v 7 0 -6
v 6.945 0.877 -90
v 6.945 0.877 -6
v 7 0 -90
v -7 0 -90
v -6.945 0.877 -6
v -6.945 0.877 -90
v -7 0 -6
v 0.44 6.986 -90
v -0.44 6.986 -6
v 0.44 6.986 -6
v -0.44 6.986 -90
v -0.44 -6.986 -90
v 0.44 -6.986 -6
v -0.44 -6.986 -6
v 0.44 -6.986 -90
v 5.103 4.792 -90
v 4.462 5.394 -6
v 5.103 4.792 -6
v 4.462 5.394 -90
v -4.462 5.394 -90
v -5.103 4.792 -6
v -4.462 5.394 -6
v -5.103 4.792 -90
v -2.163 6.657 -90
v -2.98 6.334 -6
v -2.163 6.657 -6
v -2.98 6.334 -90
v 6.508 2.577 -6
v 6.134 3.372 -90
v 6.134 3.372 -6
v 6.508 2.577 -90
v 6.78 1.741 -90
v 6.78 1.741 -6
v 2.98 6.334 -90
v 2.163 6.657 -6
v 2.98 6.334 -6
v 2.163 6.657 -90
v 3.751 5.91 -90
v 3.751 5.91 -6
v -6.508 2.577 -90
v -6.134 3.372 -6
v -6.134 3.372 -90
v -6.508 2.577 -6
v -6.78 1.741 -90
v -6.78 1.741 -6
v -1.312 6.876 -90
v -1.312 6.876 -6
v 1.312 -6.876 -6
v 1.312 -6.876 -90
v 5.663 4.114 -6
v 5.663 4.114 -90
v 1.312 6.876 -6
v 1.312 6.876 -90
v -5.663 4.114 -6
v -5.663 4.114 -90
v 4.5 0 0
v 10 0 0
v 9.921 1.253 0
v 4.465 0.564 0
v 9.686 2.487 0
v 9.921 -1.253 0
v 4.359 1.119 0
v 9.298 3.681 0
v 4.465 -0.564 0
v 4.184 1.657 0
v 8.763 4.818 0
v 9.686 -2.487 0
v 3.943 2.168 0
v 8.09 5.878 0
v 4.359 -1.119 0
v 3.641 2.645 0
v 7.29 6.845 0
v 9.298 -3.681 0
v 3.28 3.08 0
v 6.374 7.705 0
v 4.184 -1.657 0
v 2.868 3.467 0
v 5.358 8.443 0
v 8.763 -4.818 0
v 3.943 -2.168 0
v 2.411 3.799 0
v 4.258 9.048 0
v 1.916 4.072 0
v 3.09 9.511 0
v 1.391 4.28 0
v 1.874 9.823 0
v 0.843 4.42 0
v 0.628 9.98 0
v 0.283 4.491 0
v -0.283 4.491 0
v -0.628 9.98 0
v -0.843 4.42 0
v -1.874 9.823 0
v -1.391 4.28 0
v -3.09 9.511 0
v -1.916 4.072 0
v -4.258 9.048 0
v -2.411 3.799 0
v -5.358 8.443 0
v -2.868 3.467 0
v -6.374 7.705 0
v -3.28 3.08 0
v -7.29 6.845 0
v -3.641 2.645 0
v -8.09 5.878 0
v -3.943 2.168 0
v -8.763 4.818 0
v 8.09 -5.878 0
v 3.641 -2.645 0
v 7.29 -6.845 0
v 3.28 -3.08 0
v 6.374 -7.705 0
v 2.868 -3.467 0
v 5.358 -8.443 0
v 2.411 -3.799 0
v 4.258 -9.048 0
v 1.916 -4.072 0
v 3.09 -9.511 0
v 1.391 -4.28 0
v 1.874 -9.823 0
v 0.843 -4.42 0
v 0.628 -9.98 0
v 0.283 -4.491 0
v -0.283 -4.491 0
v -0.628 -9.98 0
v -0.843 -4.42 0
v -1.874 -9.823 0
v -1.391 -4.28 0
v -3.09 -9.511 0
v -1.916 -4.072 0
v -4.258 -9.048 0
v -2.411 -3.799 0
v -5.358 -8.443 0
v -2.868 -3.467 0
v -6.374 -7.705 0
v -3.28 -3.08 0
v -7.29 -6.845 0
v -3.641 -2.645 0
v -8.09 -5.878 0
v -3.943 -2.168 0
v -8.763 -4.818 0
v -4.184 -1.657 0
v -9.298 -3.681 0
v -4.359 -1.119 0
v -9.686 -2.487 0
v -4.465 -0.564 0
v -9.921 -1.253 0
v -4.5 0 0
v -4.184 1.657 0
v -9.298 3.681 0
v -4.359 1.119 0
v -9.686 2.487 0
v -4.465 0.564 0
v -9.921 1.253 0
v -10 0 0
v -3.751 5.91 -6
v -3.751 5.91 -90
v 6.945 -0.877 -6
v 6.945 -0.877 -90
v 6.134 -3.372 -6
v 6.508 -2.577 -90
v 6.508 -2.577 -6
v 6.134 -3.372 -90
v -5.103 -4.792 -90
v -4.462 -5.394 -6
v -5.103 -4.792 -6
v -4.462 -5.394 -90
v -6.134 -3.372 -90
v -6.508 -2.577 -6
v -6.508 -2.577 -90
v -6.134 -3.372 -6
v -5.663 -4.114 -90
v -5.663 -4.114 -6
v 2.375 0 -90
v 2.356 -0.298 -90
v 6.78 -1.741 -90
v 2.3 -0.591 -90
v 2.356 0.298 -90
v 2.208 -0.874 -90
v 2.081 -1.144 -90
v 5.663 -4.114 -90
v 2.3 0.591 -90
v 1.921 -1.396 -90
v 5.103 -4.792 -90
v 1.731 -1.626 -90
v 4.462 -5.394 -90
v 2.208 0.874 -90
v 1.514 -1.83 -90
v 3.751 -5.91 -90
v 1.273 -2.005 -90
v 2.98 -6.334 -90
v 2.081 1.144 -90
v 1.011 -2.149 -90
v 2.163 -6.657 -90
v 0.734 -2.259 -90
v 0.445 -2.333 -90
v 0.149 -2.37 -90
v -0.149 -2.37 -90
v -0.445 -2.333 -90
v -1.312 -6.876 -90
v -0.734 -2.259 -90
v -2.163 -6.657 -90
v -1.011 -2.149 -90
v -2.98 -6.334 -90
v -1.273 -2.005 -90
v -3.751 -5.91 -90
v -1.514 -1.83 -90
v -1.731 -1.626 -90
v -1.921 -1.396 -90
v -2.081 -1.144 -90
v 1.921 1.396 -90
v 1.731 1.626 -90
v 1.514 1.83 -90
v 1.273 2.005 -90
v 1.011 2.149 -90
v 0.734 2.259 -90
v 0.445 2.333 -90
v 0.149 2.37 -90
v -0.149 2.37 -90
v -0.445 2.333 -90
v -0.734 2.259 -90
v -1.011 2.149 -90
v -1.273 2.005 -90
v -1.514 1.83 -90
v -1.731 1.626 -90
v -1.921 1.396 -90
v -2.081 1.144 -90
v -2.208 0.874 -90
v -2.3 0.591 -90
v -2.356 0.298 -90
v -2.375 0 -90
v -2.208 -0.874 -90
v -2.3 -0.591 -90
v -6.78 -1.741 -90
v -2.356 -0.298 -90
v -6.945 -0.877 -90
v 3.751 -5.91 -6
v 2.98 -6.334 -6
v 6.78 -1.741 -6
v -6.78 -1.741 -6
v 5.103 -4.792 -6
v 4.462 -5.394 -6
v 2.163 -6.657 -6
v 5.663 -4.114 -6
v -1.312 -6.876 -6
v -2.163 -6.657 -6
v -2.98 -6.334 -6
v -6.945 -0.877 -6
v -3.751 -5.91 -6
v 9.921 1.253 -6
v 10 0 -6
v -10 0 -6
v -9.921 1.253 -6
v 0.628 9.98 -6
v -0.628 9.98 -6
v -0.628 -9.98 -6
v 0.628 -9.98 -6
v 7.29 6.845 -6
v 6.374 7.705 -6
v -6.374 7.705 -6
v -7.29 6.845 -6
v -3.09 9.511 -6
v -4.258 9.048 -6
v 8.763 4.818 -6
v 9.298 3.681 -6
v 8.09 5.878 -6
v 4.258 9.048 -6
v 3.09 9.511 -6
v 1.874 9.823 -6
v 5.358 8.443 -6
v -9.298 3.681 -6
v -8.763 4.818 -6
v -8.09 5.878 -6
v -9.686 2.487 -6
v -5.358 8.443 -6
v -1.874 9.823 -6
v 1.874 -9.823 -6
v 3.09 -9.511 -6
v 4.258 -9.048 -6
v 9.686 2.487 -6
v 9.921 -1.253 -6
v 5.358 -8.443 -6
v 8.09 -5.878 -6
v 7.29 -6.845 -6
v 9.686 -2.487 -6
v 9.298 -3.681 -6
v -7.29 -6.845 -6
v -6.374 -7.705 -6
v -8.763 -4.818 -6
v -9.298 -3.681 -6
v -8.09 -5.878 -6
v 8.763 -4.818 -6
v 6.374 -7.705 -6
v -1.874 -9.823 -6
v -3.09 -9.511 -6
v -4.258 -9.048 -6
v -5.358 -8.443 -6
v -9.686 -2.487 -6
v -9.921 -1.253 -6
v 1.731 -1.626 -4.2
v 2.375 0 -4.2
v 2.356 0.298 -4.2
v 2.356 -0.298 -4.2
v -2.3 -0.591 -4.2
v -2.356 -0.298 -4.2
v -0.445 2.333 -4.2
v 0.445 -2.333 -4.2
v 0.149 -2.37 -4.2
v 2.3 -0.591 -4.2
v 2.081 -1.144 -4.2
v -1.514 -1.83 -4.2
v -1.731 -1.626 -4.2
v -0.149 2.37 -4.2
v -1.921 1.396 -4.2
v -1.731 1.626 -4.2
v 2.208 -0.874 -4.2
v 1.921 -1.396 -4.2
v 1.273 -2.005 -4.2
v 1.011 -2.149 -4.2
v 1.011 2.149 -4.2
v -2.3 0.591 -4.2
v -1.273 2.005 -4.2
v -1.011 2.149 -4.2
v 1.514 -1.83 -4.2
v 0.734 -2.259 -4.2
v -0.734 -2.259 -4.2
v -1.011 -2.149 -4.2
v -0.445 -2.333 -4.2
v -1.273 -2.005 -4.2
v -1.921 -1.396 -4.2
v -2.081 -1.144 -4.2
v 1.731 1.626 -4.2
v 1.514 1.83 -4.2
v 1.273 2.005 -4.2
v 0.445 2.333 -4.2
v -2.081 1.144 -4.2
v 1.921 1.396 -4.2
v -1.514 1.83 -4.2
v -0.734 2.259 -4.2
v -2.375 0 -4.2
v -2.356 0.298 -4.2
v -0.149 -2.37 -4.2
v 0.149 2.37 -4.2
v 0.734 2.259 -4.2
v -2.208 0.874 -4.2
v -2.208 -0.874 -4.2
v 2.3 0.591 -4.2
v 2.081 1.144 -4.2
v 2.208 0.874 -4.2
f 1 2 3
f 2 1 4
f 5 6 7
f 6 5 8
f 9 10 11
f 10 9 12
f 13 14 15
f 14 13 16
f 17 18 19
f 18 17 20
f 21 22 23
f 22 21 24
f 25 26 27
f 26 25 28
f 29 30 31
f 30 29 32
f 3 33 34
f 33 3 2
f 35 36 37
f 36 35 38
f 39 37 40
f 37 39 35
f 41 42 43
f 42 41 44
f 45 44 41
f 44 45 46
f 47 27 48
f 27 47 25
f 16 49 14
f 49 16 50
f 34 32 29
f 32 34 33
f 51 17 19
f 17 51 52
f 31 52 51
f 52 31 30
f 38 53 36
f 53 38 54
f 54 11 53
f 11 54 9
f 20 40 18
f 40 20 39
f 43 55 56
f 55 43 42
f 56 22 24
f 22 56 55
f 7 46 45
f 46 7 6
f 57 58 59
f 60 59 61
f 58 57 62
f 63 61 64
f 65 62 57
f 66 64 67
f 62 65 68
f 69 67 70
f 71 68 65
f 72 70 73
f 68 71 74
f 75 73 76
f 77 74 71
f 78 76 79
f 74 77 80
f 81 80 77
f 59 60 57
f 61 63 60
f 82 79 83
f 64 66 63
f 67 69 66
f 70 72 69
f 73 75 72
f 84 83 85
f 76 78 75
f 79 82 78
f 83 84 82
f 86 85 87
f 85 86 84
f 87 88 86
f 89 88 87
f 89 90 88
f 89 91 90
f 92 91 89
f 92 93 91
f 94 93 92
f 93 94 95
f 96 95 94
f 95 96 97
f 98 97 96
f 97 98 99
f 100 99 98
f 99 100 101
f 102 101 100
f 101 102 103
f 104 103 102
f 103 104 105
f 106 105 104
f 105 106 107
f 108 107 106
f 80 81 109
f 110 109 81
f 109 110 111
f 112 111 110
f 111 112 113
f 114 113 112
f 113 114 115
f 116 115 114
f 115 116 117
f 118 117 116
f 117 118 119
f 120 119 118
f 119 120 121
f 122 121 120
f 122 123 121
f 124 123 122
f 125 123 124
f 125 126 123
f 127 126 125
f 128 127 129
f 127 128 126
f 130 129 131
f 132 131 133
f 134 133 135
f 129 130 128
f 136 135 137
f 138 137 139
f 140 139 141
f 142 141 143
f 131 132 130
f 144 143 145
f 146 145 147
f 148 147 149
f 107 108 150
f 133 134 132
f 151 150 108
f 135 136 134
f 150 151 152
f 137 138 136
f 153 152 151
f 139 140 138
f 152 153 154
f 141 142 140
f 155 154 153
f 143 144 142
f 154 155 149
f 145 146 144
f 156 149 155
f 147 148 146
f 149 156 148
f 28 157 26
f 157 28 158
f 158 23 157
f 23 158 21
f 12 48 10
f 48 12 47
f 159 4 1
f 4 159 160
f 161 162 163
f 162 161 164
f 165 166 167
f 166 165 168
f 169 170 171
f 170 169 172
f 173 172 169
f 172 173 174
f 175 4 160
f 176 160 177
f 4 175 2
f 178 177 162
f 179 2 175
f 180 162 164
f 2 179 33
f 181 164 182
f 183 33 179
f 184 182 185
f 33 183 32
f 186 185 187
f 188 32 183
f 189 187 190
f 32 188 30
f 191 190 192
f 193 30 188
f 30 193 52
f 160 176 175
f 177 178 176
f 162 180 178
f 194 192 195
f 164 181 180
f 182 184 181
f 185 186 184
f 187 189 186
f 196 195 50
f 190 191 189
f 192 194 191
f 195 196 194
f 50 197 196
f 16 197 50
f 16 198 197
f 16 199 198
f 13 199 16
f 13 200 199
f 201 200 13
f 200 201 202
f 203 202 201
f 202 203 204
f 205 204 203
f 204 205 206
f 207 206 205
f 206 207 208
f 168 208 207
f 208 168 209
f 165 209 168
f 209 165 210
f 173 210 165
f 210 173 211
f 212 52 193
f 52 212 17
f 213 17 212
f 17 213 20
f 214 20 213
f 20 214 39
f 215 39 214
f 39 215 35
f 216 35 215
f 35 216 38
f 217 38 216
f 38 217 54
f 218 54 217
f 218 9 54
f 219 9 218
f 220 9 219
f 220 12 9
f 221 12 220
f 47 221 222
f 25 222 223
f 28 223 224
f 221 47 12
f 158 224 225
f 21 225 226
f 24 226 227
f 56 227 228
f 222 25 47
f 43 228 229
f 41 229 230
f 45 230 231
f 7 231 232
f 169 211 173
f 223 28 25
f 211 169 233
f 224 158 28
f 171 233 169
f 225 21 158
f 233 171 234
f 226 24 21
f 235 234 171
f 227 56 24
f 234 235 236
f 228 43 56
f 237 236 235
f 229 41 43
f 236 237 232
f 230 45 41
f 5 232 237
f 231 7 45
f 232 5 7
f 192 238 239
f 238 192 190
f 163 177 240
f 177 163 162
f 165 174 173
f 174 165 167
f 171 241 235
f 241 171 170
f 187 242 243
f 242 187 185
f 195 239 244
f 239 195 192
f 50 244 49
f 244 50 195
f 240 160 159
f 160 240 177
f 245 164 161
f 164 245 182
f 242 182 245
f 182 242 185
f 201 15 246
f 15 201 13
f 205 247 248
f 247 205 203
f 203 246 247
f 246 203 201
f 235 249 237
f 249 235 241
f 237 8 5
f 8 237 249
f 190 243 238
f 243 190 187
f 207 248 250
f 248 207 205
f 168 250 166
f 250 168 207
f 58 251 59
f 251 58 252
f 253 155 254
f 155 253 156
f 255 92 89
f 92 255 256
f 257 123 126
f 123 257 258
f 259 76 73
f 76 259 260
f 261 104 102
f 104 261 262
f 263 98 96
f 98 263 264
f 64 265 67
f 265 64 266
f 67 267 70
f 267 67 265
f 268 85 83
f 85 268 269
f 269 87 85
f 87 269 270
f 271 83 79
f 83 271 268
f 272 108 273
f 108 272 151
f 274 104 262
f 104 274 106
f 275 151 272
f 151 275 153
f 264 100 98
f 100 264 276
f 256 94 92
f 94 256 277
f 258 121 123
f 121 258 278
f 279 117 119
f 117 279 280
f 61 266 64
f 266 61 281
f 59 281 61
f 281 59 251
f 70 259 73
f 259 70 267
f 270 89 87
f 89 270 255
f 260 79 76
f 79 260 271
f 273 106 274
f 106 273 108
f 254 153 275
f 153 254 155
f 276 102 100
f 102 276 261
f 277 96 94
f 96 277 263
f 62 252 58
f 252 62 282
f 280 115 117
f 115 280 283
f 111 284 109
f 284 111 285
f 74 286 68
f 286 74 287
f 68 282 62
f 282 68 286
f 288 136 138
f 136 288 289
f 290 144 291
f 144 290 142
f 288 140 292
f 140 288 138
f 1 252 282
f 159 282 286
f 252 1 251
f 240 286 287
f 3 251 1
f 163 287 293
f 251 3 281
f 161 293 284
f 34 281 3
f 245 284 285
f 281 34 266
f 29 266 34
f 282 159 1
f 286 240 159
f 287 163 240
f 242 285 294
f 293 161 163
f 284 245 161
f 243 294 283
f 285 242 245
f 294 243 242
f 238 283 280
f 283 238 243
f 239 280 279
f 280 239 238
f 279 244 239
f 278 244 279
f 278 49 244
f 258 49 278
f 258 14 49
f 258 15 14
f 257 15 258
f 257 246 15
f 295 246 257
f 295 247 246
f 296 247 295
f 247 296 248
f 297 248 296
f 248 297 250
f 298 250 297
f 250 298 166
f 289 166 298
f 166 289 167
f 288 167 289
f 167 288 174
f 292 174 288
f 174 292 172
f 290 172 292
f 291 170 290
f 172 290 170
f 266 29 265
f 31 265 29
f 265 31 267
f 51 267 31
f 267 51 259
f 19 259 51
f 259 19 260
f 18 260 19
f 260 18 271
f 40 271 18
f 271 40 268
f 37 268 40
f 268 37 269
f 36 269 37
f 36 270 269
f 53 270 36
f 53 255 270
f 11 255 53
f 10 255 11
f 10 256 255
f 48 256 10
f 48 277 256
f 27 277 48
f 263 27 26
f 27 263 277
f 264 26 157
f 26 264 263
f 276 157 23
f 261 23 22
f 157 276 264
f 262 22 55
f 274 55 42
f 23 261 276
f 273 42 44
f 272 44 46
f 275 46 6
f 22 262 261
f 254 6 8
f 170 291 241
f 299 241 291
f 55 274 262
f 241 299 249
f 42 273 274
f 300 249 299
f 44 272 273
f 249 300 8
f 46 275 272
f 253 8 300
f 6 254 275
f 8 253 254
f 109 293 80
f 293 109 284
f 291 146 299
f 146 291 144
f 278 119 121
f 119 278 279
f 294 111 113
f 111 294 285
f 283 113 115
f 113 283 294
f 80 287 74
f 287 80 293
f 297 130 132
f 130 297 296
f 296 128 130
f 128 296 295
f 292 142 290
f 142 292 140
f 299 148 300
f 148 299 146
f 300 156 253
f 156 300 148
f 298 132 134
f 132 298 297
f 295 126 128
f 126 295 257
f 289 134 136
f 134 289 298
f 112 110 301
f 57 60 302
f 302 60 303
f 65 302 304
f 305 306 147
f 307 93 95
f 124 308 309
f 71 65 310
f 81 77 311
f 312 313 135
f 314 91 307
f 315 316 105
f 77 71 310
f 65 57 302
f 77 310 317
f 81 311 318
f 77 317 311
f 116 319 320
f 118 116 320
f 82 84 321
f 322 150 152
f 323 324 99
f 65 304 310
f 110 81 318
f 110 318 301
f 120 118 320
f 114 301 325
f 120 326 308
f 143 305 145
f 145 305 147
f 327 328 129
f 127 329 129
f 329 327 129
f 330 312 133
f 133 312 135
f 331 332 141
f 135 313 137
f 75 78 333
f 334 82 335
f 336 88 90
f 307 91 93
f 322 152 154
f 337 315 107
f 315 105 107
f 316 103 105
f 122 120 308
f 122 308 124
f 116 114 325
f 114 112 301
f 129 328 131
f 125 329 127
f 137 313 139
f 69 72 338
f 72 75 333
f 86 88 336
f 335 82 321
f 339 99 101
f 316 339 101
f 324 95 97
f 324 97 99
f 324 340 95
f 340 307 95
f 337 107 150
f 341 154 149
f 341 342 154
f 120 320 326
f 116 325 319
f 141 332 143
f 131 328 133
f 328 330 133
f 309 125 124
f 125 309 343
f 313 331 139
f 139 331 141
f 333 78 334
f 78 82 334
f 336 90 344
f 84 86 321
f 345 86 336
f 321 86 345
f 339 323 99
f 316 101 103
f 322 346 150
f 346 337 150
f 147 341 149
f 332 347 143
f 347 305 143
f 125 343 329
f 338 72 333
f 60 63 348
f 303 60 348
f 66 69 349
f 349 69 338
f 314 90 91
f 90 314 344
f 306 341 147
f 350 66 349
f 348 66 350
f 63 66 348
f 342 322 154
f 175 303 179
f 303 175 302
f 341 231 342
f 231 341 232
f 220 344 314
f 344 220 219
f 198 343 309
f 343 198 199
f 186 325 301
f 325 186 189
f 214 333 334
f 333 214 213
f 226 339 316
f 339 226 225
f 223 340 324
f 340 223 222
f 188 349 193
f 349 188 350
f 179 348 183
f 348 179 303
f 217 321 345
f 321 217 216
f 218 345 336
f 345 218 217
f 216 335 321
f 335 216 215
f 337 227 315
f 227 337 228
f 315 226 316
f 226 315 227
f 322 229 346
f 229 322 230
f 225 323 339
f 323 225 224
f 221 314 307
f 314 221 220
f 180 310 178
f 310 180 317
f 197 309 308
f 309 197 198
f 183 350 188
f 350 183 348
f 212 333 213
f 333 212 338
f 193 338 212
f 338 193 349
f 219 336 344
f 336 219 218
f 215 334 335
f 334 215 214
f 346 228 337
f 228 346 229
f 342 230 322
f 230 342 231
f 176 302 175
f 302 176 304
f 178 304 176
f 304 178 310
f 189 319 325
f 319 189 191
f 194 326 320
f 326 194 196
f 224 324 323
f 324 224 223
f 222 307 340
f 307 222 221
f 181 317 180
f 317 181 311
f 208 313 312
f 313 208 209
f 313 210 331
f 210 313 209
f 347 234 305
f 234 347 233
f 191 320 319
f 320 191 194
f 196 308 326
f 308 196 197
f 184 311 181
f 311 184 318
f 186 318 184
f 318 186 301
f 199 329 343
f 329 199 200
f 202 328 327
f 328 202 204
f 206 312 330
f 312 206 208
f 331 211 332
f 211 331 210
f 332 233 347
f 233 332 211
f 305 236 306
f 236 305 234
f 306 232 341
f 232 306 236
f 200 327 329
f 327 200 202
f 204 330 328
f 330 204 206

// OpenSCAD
$fn = 50;


difference() {
	union() {
		translate(v = [0, 0, -90.0000000000]) {
			cylinder(h = 90, r = 7.0000000000);
		}
		translate(v = [0, 0, -6.0000000000]) {
			cylinder(h = 6, r = 10.0000000000);
		}
	}
	union() {
		translate(v = [0, 0, 0]) {
			rotate(a = [0, 0, 0]) {
				difference() {
					union() {
						#translate(v = [0, 0, -90.0000000000]) {
							cylinder(h = 90, r = 2.2500000000);
						}
						#translate(v = [0, 0, -4.2000000000]) {
							cylinder(h = 4.2000000000, r1 = 2.3750000000, r2 = 4.5000000000);
						}
						#translate(v = [0, 0, -90.0000000000]) {
							cylinder(h = 90, r = 2.3750000000);
						}
						#translate(v = [0, 0, -90.0000000000]) {
							cylinder(h = 90, r = 2.2500000000);
						}
					}
					union();
				}
			}
		}
	}
}
